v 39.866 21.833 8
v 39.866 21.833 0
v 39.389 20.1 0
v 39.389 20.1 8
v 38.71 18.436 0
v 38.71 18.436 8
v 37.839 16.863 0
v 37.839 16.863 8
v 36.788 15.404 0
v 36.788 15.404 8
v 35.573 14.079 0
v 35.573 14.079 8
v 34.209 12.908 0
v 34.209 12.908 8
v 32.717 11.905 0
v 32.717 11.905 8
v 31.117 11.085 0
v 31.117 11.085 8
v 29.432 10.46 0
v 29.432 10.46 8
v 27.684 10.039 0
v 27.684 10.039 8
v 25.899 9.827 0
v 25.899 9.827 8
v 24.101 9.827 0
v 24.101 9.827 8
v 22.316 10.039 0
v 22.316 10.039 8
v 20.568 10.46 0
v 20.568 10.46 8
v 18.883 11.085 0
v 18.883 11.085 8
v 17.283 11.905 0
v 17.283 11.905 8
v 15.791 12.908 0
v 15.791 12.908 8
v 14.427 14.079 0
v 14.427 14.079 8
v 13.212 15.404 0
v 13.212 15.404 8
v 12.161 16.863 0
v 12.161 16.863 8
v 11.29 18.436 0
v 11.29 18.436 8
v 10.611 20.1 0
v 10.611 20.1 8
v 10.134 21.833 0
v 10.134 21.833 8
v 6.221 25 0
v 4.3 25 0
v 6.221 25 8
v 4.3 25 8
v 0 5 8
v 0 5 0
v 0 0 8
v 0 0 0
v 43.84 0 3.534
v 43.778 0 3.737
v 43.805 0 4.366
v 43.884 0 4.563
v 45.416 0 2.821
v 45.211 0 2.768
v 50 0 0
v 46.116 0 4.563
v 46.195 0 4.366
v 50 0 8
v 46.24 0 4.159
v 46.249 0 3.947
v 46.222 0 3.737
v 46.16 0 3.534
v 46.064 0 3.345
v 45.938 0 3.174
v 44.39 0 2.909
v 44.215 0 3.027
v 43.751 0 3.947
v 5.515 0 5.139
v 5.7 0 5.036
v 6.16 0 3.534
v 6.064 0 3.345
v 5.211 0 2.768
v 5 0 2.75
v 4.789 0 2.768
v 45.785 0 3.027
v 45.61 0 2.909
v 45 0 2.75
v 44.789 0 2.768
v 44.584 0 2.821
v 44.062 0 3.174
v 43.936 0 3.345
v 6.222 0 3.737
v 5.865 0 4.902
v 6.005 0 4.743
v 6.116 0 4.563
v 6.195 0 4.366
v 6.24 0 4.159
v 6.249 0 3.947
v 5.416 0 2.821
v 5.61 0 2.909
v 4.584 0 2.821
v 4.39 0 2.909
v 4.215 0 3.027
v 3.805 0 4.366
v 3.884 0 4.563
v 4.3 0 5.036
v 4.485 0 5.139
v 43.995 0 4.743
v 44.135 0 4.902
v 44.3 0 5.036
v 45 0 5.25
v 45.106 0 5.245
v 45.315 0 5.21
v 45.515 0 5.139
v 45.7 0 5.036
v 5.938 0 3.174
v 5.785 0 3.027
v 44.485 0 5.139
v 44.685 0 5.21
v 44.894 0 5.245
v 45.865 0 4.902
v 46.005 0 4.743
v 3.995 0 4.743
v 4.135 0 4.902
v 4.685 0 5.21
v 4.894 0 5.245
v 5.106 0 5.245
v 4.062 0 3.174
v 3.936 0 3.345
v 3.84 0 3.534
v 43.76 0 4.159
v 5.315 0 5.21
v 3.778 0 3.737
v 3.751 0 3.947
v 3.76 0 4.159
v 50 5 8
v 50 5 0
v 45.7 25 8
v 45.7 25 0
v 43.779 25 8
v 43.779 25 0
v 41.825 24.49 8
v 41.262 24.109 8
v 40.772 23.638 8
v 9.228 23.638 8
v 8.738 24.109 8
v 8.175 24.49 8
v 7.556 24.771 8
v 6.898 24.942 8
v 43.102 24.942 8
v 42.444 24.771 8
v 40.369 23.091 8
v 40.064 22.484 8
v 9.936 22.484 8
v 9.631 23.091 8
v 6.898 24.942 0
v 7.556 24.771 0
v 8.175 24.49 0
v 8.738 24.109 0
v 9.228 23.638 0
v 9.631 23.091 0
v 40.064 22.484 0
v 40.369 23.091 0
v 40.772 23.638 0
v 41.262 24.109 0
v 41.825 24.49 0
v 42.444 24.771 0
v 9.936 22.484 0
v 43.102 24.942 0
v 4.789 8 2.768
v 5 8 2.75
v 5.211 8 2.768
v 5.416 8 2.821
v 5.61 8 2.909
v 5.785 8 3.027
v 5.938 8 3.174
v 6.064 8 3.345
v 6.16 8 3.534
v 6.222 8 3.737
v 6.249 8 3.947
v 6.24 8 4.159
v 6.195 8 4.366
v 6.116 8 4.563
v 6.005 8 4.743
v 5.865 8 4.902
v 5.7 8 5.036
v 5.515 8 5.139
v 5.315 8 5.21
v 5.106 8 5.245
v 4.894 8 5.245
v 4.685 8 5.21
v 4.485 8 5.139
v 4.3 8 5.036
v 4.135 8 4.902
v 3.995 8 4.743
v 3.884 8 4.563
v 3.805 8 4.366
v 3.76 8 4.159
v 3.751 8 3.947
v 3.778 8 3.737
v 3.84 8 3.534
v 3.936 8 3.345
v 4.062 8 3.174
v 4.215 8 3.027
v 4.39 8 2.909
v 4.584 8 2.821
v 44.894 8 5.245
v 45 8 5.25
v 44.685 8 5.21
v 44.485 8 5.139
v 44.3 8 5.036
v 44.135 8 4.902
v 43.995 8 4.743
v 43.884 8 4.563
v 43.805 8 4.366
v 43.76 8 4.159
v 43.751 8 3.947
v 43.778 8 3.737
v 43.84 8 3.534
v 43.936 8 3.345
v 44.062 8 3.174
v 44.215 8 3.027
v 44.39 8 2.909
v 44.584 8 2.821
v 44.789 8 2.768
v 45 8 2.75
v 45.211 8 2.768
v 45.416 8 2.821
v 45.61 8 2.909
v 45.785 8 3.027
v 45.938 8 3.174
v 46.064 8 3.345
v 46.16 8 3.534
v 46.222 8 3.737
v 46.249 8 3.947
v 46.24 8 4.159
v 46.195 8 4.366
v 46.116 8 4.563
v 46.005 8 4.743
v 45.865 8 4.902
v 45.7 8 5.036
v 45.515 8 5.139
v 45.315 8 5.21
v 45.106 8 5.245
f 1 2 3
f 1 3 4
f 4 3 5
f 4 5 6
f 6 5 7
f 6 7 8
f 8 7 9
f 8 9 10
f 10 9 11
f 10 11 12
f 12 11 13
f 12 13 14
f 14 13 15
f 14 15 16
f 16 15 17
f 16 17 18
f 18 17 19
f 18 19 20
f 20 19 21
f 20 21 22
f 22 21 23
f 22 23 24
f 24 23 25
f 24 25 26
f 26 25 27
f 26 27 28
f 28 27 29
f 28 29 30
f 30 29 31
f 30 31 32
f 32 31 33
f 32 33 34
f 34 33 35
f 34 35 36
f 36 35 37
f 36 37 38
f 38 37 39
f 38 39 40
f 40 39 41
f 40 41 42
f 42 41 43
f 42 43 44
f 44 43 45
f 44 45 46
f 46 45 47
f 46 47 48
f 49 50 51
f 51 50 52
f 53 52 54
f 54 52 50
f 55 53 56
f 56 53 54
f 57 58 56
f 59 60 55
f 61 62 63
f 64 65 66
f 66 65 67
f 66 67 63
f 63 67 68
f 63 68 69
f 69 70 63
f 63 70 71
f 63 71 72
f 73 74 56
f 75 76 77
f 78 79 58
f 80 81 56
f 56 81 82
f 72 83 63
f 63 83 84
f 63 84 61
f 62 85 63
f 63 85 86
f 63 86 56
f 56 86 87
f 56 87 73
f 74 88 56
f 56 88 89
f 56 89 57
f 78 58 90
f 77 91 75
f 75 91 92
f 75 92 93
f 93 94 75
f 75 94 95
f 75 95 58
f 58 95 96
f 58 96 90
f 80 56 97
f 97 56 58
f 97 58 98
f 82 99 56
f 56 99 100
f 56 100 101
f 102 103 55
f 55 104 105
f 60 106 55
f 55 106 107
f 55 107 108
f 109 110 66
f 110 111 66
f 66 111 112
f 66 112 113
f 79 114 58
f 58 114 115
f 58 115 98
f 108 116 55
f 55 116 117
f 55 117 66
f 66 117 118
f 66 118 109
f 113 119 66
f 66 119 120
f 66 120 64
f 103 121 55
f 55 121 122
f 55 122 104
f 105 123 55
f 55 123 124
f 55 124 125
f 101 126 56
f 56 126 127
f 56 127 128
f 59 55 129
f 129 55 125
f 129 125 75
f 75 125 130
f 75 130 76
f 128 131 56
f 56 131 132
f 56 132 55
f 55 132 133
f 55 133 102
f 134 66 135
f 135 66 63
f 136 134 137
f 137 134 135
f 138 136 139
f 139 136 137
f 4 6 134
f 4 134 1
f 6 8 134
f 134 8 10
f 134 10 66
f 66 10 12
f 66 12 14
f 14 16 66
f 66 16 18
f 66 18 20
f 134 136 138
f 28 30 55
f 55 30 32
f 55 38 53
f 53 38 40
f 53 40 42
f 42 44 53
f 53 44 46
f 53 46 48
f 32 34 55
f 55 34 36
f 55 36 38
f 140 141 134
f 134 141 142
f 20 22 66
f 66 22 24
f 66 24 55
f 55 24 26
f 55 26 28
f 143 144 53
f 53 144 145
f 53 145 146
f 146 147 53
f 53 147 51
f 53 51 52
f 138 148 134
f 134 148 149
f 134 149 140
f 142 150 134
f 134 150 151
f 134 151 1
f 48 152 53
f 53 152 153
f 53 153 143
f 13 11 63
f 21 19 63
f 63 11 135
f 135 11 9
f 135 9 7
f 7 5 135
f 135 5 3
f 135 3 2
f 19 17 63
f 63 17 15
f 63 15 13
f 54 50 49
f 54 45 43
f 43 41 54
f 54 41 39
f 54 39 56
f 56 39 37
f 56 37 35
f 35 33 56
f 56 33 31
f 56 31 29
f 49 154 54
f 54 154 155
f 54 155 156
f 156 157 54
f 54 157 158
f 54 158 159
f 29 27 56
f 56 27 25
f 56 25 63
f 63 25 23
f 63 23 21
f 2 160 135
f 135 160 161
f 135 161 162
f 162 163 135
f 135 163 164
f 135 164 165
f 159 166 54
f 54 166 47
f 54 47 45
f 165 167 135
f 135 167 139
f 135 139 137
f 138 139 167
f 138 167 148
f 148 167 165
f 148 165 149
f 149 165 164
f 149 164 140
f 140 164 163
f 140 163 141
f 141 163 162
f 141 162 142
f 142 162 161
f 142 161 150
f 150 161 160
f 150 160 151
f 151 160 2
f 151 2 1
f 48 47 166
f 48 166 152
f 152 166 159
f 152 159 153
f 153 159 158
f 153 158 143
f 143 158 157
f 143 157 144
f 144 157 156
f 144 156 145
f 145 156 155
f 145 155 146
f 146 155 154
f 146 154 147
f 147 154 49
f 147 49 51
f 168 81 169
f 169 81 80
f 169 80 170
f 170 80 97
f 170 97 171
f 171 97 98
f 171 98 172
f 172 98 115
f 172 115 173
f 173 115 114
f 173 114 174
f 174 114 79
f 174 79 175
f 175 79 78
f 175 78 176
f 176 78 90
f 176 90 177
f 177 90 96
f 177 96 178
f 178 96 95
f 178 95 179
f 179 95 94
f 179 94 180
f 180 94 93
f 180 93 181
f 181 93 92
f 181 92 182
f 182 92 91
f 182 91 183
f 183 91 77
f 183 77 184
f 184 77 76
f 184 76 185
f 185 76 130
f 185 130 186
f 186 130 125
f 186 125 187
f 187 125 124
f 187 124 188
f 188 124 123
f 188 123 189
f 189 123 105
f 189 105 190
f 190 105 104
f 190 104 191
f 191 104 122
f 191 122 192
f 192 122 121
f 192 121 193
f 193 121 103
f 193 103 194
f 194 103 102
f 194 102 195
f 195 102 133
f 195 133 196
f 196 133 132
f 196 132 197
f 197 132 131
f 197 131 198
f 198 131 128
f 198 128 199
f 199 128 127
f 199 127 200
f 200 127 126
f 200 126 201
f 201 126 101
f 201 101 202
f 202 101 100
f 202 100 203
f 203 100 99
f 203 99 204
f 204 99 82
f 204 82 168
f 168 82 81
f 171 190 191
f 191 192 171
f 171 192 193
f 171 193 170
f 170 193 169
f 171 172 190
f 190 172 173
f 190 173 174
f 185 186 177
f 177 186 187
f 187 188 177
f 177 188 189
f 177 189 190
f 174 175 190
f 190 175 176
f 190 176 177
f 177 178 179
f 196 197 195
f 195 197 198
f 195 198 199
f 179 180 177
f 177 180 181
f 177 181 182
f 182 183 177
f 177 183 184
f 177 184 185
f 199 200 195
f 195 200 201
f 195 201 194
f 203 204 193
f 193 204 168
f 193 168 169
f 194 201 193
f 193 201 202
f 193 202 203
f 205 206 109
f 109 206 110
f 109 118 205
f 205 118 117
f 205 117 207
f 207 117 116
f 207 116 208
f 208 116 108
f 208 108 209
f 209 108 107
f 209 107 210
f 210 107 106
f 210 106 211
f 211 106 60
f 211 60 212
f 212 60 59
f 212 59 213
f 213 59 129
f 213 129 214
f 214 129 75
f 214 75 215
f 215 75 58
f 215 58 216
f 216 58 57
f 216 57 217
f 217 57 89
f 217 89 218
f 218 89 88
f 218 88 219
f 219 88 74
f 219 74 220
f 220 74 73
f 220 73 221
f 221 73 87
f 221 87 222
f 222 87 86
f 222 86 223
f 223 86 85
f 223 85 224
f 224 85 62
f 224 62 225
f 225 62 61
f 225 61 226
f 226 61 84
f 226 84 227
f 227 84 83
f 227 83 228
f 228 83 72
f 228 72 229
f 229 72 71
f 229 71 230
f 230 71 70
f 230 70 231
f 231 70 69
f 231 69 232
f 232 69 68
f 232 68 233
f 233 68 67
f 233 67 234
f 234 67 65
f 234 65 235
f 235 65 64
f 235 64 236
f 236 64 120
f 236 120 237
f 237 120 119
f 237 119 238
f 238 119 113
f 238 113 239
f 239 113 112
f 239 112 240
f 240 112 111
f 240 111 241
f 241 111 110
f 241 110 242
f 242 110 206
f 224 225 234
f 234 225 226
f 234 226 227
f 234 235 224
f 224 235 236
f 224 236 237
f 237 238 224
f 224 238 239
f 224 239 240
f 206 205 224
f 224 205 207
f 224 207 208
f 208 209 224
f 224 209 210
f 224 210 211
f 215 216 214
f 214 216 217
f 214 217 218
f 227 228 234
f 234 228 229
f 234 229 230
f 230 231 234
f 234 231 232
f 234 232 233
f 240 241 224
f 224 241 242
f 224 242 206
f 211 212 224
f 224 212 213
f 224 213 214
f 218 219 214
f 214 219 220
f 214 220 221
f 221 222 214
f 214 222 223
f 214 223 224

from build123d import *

# Parameters (mm, degrees)
BOSS_EXTRU_1_DEPTH      = 8
CONG_1_R                = 4
ESQUISSE2_R             = 1.25
ENL_V_MAT_EXTRU_1_DEPTH = 8


with BuildPart() as part:
    # Esquisse1 → Boss.-Extru.1 (new body)
    with BuildSketch(Plane.XY):
        with BuildLine():
            Line((9.8, 25), (4.3, 25))
            Line((4.3, 25), (0, 5))
            Line((0, 5), (0, 0))
            Line((0, 0), (50, 0))
            Line((50, 0), (50, 5))
            Line((50, 5), (45.7, 25))
            Line((45.7, 25), (40.2, 25))
            ThreePointArc((40.2, 25), (25, 9.8), (9.8, 25))
        make_face()
    extrude(amount=BOSS_EXTRU_1_DEPTH)

    # Congé1
    cong_1_edges = [part.edges().sort_by_distance(p)[0] for p in [
        (40.2, 25, 4),
        (9.8, 25, 4),
    ]]
    fillet(cong_1_edges, radius=CONG_1_R)

    # Esquisse2 → Enlèv. mat.-Extru.1 (cut)
    with BuildSketch(Plane.XZ):
        with Locations(Location((5, 4, 0), (0, 0, 270))):
            Circle(ESQUISSE2_R)
        with Locations(Location((45, 4, 0), (0, 0, 90))):
            Circle(ESQUISSE2_R)
    extrude(amount=-ENL_V_MAT_EXTRU_1_DEPTH, mode=Mode.SUBTRACT)


solid = part.part
